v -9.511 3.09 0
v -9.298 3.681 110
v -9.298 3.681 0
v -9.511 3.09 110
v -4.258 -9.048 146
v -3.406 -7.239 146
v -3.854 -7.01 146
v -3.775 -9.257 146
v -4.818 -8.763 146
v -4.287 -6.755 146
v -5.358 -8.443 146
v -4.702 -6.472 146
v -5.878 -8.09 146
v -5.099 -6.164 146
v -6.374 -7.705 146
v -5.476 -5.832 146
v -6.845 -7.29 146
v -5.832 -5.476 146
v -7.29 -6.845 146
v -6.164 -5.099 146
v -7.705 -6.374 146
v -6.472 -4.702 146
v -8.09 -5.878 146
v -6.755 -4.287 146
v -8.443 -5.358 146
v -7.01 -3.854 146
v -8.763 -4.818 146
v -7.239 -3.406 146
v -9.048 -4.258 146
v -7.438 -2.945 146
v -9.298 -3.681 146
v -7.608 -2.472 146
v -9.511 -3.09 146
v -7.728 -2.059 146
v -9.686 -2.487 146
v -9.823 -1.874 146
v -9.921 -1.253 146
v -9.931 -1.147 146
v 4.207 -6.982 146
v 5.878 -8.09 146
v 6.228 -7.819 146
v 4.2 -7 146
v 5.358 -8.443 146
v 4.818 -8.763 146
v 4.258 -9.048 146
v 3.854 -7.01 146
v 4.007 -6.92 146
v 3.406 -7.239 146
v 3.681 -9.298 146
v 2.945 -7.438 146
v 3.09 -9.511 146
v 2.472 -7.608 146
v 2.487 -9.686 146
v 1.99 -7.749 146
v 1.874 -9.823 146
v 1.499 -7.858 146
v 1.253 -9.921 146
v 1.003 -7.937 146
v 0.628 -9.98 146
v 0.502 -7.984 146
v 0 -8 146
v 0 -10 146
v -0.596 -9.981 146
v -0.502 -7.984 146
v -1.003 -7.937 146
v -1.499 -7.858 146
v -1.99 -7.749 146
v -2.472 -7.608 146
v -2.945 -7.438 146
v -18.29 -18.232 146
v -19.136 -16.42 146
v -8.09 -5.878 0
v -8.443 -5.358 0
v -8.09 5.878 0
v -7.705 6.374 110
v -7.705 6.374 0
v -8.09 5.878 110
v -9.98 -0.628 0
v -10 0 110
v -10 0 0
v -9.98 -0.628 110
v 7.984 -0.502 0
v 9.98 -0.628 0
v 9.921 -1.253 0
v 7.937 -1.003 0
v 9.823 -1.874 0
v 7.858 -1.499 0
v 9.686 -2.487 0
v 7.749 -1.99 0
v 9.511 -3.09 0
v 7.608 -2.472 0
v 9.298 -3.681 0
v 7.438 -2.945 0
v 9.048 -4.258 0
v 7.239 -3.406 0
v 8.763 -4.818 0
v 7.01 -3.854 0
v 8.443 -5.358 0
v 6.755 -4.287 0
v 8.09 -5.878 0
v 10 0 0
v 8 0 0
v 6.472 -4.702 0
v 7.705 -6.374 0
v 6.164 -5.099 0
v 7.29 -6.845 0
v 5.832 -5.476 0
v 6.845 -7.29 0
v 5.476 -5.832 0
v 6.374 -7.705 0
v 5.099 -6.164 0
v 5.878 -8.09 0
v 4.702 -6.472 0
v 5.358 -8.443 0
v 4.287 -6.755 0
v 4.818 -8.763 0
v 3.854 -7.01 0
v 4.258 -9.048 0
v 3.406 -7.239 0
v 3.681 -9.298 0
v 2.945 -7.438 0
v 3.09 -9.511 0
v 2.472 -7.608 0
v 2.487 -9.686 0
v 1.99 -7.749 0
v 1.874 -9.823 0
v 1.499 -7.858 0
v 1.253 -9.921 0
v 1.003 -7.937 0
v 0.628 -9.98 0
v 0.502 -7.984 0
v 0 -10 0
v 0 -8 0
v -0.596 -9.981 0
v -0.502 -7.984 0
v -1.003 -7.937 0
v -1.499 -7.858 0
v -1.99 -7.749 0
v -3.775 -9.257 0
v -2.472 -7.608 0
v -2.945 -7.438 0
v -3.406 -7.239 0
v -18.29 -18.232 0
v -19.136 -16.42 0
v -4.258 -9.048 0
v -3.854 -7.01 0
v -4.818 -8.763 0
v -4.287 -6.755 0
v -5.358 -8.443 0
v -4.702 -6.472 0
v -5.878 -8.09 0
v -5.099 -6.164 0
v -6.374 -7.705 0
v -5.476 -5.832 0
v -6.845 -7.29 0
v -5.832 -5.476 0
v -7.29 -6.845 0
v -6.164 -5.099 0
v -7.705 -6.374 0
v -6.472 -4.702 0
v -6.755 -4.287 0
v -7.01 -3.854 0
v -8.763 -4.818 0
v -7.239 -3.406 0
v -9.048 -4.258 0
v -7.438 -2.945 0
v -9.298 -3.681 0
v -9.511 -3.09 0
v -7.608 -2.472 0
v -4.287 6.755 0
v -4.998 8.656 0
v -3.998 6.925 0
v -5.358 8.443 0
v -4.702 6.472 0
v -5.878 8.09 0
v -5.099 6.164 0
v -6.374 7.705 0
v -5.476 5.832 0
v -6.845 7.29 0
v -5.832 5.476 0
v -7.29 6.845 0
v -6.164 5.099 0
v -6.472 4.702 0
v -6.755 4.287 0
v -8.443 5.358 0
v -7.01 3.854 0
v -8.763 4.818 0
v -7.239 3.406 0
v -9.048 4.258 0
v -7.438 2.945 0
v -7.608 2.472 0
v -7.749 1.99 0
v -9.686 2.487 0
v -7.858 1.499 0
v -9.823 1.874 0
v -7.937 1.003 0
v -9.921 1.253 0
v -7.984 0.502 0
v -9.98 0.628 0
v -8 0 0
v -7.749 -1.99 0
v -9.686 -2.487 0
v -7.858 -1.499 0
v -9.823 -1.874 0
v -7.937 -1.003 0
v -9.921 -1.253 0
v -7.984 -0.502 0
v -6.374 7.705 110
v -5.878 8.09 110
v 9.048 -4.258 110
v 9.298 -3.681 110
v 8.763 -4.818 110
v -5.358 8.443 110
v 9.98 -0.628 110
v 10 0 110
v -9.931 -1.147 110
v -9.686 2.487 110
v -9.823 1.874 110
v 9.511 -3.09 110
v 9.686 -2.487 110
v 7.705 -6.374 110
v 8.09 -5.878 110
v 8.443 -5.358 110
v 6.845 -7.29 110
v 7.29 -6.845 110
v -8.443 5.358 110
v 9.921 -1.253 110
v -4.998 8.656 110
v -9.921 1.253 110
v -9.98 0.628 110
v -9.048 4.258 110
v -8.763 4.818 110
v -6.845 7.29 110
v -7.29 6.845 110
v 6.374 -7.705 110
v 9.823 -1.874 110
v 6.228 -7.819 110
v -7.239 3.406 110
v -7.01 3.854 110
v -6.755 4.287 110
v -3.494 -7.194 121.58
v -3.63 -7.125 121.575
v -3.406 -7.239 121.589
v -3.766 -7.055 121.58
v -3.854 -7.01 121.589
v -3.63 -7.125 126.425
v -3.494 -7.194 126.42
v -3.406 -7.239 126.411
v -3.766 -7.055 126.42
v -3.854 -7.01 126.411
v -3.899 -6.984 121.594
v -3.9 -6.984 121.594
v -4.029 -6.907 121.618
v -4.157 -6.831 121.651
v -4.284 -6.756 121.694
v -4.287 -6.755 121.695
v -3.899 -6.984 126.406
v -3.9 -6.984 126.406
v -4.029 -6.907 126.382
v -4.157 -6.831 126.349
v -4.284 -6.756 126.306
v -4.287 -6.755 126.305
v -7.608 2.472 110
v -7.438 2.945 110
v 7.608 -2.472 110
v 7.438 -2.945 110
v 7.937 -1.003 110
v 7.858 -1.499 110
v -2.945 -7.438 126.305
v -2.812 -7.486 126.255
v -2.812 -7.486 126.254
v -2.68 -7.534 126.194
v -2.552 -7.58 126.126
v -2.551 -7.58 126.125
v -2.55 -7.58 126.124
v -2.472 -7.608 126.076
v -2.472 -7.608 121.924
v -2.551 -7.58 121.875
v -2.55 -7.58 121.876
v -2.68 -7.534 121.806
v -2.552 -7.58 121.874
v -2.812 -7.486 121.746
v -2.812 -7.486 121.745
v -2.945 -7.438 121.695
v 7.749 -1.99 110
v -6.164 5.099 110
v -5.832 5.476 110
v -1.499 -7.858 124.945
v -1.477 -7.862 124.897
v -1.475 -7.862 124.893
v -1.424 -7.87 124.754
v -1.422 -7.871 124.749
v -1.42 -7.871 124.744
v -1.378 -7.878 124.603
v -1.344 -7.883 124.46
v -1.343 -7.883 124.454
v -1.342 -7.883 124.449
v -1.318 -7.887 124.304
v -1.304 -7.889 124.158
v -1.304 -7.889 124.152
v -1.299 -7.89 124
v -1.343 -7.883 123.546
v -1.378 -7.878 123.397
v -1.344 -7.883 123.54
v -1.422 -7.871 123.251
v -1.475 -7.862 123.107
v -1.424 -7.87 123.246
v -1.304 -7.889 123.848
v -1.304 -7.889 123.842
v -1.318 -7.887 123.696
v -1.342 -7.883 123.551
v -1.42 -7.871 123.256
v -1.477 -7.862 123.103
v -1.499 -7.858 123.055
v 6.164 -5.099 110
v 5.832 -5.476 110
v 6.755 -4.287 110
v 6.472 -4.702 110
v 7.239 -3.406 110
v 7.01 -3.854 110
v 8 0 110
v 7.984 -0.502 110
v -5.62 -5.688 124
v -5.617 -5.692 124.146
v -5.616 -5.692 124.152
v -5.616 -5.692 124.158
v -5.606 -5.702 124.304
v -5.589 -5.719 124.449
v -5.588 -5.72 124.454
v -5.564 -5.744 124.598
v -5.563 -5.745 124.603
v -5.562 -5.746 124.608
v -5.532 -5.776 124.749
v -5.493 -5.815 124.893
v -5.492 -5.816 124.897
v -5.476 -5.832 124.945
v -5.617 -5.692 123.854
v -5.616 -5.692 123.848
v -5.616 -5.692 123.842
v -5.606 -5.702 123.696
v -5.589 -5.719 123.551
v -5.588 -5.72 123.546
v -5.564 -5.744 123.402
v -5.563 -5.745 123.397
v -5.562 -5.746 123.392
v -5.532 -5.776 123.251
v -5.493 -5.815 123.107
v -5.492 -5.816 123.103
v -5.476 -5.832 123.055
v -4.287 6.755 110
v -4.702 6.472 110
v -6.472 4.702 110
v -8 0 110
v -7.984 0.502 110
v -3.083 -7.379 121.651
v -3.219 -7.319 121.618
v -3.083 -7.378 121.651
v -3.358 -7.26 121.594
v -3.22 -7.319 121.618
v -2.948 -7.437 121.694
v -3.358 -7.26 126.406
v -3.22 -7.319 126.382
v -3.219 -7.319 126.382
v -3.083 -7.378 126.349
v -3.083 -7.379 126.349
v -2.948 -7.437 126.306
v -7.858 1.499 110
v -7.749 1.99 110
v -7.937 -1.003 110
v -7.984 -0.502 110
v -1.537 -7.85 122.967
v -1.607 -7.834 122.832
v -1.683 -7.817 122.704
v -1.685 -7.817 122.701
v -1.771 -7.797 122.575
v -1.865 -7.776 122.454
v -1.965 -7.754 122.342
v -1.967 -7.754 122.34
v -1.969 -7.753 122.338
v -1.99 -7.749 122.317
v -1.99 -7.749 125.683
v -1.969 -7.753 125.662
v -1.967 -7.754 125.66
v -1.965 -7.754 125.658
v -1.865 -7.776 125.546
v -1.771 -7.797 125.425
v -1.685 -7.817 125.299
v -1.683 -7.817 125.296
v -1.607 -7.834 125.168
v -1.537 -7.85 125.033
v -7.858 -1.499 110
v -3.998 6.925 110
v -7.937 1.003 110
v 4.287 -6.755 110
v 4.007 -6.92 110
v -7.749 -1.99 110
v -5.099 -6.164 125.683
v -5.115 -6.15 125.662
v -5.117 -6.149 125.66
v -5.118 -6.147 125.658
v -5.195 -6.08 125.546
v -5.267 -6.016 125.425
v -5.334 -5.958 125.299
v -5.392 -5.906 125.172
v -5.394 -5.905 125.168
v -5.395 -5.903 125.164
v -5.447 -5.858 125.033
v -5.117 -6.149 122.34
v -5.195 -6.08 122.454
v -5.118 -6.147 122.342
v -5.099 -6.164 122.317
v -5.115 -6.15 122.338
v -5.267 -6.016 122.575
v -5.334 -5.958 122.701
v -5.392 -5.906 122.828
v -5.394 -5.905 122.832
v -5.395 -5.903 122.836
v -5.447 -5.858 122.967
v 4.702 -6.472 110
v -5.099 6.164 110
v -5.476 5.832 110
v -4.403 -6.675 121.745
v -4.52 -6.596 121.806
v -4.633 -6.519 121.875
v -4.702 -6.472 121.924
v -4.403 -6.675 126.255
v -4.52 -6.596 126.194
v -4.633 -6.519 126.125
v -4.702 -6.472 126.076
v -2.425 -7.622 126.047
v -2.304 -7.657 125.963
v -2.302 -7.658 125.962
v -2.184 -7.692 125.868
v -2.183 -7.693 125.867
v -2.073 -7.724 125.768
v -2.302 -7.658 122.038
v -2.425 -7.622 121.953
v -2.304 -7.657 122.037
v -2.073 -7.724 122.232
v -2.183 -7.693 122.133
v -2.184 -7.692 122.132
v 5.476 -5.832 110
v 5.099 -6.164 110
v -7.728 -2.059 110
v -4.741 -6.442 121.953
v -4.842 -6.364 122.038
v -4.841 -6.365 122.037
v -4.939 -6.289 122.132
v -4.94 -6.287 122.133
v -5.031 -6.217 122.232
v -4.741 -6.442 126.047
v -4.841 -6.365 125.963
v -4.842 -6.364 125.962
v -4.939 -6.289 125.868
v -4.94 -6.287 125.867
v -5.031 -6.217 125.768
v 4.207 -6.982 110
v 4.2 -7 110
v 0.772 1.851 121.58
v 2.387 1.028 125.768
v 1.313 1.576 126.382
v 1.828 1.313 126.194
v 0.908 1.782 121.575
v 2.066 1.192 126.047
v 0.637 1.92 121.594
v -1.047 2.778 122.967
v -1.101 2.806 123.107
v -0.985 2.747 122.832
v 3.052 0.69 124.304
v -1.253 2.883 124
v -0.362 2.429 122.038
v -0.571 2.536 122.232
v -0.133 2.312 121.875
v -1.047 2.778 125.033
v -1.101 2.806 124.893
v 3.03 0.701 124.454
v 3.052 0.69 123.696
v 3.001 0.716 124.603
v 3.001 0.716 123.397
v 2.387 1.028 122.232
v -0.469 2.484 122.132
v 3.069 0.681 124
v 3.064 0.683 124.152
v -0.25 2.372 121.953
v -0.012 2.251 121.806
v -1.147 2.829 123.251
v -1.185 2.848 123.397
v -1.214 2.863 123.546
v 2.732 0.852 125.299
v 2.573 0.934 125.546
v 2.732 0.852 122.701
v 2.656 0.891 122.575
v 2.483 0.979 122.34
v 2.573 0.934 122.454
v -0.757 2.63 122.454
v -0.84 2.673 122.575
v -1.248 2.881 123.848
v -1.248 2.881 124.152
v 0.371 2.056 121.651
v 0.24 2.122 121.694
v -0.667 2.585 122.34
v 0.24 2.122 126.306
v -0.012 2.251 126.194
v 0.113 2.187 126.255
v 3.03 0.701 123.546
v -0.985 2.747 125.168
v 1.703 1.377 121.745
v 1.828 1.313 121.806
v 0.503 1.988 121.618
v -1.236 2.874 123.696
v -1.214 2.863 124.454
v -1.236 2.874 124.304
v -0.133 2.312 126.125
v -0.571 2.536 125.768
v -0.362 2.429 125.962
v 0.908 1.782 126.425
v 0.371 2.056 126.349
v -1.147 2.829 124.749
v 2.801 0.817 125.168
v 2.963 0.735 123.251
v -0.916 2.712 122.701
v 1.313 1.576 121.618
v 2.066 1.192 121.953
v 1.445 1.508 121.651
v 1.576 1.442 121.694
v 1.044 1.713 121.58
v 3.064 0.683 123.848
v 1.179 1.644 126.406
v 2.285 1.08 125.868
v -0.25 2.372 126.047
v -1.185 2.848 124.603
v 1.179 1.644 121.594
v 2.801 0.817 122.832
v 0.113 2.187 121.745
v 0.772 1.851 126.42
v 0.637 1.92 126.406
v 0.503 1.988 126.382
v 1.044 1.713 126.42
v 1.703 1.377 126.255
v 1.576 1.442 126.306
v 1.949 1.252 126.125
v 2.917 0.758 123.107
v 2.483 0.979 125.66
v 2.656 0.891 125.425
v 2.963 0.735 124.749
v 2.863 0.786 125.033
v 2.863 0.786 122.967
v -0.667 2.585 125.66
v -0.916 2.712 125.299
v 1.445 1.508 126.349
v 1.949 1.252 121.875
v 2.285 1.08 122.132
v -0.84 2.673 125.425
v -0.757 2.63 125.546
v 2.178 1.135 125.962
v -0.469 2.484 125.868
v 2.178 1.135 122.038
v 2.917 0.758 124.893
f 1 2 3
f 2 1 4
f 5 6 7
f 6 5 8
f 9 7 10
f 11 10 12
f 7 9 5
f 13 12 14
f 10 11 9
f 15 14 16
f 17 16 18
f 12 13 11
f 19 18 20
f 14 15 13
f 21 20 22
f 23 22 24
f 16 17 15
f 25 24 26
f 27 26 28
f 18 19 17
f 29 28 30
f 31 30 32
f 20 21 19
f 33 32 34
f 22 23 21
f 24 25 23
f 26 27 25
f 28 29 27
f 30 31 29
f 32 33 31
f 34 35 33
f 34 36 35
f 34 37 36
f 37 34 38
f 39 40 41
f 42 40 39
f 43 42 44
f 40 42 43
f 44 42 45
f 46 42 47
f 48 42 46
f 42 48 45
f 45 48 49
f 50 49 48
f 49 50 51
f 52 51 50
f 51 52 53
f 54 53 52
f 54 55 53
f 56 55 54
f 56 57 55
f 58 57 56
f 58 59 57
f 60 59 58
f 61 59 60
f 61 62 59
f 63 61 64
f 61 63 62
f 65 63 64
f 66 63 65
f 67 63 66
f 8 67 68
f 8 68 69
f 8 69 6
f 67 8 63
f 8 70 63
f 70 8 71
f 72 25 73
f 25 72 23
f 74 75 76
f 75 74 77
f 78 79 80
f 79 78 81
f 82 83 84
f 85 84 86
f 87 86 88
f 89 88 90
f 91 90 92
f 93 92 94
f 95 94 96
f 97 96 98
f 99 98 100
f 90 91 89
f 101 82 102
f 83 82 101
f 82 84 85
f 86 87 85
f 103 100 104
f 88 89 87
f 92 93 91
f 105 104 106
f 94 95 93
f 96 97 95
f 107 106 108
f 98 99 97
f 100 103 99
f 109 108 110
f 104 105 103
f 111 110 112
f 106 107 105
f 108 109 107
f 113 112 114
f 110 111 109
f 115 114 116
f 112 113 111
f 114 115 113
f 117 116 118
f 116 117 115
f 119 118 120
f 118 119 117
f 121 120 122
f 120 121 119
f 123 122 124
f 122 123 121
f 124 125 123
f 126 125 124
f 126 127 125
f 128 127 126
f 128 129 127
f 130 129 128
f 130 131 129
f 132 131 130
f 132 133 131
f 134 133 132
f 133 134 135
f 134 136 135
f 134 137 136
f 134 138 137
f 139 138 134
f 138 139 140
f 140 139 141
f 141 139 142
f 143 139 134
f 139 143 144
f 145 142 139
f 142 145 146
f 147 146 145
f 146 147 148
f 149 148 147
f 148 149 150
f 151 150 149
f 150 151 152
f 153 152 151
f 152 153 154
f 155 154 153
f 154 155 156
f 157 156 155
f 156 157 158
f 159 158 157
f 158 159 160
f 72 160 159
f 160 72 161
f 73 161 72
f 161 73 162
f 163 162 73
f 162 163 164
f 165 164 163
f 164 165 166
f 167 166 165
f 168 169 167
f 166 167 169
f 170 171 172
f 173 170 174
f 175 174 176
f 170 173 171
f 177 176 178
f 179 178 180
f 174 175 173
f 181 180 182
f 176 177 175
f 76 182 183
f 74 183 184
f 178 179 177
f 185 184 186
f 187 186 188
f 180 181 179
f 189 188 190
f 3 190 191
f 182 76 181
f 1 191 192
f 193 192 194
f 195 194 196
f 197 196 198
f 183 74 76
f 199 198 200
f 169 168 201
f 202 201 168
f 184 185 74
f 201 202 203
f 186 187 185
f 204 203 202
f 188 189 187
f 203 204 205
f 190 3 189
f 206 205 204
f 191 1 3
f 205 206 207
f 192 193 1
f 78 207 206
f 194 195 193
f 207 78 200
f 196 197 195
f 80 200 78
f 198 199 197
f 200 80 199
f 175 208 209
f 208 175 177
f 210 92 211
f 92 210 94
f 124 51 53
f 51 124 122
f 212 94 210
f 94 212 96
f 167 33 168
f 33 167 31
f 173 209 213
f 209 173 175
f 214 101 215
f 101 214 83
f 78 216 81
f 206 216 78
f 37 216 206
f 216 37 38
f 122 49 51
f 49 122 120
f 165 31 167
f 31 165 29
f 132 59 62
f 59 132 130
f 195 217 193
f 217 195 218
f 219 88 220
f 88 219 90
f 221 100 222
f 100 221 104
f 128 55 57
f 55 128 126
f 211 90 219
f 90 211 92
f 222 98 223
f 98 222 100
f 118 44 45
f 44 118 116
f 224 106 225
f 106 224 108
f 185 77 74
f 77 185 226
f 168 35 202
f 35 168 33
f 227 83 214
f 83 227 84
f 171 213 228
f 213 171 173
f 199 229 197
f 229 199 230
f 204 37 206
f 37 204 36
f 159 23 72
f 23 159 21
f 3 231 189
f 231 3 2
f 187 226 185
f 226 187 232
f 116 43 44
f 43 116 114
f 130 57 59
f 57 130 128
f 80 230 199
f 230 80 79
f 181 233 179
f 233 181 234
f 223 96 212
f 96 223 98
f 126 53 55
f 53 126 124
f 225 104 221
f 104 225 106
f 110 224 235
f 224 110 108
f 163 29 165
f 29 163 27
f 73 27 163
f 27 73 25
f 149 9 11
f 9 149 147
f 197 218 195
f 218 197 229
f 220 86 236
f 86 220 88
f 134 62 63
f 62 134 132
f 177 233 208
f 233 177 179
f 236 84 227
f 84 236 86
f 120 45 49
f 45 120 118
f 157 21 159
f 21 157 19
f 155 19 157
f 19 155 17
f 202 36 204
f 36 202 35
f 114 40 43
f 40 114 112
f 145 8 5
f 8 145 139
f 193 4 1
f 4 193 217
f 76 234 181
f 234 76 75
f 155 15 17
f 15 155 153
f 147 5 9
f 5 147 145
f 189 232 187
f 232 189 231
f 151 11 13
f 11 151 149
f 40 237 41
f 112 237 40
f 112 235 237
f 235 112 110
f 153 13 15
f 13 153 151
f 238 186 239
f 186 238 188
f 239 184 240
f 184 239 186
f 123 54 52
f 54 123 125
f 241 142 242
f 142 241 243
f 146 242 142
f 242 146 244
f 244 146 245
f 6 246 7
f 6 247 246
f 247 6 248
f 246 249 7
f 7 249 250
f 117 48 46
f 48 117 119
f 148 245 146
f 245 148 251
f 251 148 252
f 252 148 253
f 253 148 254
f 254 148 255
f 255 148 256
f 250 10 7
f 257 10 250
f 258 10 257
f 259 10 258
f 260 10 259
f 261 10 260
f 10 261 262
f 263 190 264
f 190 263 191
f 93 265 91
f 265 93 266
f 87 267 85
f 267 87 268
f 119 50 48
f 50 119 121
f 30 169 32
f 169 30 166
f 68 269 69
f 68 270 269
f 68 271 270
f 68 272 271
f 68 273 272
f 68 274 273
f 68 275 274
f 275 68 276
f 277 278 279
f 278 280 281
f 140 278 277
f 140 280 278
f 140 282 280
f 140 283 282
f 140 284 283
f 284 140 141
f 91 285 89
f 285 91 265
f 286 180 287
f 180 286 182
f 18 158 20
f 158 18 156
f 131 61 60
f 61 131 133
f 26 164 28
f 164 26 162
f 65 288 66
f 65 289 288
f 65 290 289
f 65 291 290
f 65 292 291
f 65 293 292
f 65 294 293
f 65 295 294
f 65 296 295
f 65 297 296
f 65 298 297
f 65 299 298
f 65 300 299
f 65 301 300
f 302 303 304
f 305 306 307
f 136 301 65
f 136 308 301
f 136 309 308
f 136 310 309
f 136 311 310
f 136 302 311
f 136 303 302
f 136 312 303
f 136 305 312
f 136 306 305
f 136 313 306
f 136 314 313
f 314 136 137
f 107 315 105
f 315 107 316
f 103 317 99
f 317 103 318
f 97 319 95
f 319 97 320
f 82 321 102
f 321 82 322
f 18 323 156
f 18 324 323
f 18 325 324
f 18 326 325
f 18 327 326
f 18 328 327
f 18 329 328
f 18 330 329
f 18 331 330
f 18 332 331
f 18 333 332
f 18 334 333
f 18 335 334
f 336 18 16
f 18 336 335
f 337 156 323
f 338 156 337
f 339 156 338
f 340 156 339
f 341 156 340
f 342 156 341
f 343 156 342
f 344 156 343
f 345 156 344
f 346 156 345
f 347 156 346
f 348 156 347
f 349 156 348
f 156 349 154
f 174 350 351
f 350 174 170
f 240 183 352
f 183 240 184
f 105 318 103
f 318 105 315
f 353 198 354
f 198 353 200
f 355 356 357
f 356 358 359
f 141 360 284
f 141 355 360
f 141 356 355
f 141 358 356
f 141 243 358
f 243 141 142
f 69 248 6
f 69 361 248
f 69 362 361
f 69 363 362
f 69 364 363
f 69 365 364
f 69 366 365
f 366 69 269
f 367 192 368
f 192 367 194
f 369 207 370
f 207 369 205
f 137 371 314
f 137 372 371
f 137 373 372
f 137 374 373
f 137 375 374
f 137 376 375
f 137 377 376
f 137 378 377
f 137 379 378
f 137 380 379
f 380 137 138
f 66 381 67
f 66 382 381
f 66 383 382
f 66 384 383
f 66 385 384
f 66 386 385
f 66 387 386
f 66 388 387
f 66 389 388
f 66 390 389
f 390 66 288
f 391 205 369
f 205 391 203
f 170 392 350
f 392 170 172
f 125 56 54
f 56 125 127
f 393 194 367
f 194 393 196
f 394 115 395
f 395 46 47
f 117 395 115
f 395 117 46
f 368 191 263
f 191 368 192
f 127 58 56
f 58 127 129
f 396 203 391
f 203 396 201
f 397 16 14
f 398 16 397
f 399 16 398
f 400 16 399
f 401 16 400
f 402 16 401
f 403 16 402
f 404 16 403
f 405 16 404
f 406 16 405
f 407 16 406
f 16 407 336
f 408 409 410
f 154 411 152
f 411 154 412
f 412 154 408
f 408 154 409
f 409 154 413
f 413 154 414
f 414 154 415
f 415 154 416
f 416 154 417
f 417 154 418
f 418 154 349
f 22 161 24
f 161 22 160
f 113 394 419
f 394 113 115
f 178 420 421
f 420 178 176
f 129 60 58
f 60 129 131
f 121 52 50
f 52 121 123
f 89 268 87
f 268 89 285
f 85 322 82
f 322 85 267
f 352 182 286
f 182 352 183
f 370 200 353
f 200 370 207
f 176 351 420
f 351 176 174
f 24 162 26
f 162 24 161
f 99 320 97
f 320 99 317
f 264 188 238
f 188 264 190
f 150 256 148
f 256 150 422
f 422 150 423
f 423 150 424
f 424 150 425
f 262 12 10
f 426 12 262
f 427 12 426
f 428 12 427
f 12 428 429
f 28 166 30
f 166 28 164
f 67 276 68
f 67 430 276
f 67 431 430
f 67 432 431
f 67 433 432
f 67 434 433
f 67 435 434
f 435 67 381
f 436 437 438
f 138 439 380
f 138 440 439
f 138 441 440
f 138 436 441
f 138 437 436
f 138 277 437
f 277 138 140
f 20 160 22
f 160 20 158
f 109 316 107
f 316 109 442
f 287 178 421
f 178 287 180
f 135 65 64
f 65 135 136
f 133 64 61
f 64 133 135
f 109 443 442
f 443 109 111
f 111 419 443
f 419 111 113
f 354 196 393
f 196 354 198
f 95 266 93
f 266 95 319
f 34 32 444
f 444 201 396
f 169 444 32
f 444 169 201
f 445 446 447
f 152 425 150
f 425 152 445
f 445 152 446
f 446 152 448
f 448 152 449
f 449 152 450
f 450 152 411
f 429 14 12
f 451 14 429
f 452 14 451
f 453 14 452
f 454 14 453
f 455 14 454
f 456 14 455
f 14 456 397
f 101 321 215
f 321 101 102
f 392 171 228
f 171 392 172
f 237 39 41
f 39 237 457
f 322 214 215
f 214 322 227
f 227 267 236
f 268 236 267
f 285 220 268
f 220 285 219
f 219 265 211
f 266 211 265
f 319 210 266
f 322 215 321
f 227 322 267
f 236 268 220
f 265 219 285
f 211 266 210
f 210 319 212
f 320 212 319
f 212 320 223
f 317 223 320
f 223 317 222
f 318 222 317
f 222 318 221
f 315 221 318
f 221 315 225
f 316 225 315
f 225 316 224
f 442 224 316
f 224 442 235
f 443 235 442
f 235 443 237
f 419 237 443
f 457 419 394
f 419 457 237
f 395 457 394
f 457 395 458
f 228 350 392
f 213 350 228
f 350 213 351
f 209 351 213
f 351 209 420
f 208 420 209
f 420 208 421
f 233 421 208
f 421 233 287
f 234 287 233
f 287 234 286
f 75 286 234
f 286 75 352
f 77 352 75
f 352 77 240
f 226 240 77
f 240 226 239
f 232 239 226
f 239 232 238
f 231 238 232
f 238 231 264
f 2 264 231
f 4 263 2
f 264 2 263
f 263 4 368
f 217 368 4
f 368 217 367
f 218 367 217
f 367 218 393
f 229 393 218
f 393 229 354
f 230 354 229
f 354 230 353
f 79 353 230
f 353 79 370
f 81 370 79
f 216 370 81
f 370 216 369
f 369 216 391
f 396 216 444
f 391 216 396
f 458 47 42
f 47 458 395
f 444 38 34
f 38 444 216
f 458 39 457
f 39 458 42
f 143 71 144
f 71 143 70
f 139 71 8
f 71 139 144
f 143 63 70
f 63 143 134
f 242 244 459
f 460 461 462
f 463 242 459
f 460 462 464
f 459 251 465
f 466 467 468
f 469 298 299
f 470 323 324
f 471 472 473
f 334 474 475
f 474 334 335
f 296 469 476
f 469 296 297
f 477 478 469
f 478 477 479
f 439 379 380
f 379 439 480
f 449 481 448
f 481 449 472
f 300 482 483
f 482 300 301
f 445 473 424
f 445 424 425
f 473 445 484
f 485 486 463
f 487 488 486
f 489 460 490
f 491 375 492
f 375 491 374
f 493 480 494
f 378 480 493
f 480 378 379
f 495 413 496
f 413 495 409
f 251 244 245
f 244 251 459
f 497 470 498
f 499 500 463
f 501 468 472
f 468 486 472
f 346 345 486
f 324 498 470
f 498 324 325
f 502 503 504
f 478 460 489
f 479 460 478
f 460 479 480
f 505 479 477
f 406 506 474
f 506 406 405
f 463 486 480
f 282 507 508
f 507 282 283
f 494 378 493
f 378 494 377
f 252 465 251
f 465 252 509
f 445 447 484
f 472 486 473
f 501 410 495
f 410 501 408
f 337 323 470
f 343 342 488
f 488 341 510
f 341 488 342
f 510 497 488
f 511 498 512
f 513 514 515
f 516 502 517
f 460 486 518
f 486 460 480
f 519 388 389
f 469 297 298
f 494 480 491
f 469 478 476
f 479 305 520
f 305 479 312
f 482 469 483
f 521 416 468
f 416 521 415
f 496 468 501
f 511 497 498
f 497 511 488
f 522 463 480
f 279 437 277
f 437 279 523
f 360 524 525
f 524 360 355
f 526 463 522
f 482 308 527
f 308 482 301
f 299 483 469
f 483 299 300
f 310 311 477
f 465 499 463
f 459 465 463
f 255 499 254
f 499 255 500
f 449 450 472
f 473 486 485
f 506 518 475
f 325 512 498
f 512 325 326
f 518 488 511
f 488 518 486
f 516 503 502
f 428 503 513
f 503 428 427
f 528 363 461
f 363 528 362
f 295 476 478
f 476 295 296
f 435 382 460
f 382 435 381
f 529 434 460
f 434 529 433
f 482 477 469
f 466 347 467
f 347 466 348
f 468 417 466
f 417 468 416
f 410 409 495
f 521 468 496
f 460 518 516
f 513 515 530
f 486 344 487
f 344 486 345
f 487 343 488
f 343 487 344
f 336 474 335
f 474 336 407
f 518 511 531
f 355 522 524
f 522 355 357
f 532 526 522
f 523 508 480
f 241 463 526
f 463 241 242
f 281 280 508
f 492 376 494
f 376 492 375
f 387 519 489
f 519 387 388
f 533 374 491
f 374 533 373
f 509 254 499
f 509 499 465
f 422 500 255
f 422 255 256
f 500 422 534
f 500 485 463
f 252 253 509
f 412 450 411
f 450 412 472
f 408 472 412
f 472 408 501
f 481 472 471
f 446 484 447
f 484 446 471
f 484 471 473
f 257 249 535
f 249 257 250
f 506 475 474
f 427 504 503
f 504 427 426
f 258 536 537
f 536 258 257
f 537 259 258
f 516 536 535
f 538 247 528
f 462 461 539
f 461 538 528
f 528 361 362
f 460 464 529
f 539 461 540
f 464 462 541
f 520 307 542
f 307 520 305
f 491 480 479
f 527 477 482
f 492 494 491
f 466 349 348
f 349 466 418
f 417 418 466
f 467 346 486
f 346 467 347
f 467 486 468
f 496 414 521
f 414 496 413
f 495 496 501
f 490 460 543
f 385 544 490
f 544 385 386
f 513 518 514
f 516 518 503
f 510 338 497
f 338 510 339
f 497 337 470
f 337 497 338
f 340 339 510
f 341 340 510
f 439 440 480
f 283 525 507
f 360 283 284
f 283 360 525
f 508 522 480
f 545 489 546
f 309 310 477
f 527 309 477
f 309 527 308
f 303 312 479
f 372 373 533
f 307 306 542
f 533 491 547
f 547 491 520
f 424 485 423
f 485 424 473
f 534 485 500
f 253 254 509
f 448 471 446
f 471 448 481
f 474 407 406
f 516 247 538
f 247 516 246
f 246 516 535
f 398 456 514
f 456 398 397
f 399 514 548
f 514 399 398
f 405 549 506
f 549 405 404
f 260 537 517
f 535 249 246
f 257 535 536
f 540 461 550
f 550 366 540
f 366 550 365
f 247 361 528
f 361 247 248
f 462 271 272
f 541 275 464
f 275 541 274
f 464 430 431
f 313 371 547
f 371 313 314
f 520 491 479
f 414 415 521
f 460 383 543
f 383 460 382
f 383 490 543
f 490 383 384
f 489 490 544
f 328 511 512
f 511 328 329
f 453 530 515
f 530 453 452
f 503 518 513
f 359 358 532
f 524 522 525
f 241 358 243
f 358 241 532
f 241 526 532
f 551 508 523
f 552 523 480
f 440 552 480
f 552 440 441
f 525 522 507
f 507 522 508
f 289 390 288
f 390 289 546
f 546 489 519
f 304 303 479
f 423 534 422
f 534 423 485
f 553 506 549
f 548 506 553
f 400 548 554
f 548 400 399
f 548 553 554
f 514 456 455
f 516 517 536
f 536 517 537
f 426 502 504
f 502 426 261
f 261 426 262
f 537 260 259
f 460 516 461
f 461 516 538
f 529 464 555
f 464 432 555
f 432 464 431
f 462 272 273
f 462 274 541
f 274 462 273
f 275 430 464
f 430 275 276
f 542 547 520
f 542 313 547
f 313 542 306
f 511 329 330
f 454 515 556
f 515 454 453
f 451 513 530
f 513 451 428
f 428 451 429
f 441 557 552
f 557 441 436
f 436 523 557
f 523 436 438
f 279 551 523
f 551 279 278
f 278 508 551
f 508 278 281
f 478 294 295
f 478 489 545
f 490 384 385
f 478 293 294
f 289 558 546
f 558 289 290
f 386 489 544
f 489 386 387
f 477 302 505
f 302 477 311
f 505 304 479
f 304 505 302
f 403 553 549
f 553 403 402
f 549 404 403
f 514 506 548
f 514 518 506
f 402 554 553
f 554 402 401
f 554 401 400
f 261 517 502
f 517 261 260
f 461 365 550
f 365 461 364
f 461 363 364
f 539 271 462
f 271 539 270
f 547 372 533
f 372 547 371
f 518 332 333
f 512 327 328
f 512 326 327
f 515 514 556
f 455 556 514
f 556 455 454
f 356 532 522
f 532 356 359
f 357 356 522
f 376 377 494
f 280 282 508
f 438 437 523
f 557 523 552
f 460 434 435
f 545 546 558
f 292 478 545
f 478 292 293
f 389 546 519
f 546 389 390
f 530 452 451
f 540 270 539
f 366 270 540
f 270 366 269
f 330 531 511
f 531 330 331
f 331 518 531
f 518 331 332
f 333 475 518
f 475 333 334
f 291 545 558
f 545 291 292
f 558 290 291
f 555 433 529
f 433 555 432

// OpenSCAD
union(){
    difference() {
        cylinder(h = 146, d = 20, $fn = 100);
        cylinder(h = 146, d = 16, $fn = 100);

        cube([10, 10, 120]);
        rotate([0, 0, 30]) {
            cube([10, 10, 120]);
        }

        translate([9.2, -9.05, 110]){
            rotate([0, 0, 67.5]) {
                cube([17.4, 17.4, 46]);
            }
        }

        translate([4.2, -7, 110]){
            rotate([0, 0, 67.5]) {
                cube([17.4, 17.4, 46]);
            }
        }
    }

    // Wall
    translate([-9.65, -13.1, 73]) {
        rotate([0, 0, 25]) {
            cube([20, 2, 146], center = true);
        }
    }

    // Nipple
    translate([0, 0, 124]) {
        rotate([0, 90, 63]) {
            translate([0, 0, -8]) {
            cylinder(h = 10, d = 4.85, $fn = 100);
            }
        }
    }
}
